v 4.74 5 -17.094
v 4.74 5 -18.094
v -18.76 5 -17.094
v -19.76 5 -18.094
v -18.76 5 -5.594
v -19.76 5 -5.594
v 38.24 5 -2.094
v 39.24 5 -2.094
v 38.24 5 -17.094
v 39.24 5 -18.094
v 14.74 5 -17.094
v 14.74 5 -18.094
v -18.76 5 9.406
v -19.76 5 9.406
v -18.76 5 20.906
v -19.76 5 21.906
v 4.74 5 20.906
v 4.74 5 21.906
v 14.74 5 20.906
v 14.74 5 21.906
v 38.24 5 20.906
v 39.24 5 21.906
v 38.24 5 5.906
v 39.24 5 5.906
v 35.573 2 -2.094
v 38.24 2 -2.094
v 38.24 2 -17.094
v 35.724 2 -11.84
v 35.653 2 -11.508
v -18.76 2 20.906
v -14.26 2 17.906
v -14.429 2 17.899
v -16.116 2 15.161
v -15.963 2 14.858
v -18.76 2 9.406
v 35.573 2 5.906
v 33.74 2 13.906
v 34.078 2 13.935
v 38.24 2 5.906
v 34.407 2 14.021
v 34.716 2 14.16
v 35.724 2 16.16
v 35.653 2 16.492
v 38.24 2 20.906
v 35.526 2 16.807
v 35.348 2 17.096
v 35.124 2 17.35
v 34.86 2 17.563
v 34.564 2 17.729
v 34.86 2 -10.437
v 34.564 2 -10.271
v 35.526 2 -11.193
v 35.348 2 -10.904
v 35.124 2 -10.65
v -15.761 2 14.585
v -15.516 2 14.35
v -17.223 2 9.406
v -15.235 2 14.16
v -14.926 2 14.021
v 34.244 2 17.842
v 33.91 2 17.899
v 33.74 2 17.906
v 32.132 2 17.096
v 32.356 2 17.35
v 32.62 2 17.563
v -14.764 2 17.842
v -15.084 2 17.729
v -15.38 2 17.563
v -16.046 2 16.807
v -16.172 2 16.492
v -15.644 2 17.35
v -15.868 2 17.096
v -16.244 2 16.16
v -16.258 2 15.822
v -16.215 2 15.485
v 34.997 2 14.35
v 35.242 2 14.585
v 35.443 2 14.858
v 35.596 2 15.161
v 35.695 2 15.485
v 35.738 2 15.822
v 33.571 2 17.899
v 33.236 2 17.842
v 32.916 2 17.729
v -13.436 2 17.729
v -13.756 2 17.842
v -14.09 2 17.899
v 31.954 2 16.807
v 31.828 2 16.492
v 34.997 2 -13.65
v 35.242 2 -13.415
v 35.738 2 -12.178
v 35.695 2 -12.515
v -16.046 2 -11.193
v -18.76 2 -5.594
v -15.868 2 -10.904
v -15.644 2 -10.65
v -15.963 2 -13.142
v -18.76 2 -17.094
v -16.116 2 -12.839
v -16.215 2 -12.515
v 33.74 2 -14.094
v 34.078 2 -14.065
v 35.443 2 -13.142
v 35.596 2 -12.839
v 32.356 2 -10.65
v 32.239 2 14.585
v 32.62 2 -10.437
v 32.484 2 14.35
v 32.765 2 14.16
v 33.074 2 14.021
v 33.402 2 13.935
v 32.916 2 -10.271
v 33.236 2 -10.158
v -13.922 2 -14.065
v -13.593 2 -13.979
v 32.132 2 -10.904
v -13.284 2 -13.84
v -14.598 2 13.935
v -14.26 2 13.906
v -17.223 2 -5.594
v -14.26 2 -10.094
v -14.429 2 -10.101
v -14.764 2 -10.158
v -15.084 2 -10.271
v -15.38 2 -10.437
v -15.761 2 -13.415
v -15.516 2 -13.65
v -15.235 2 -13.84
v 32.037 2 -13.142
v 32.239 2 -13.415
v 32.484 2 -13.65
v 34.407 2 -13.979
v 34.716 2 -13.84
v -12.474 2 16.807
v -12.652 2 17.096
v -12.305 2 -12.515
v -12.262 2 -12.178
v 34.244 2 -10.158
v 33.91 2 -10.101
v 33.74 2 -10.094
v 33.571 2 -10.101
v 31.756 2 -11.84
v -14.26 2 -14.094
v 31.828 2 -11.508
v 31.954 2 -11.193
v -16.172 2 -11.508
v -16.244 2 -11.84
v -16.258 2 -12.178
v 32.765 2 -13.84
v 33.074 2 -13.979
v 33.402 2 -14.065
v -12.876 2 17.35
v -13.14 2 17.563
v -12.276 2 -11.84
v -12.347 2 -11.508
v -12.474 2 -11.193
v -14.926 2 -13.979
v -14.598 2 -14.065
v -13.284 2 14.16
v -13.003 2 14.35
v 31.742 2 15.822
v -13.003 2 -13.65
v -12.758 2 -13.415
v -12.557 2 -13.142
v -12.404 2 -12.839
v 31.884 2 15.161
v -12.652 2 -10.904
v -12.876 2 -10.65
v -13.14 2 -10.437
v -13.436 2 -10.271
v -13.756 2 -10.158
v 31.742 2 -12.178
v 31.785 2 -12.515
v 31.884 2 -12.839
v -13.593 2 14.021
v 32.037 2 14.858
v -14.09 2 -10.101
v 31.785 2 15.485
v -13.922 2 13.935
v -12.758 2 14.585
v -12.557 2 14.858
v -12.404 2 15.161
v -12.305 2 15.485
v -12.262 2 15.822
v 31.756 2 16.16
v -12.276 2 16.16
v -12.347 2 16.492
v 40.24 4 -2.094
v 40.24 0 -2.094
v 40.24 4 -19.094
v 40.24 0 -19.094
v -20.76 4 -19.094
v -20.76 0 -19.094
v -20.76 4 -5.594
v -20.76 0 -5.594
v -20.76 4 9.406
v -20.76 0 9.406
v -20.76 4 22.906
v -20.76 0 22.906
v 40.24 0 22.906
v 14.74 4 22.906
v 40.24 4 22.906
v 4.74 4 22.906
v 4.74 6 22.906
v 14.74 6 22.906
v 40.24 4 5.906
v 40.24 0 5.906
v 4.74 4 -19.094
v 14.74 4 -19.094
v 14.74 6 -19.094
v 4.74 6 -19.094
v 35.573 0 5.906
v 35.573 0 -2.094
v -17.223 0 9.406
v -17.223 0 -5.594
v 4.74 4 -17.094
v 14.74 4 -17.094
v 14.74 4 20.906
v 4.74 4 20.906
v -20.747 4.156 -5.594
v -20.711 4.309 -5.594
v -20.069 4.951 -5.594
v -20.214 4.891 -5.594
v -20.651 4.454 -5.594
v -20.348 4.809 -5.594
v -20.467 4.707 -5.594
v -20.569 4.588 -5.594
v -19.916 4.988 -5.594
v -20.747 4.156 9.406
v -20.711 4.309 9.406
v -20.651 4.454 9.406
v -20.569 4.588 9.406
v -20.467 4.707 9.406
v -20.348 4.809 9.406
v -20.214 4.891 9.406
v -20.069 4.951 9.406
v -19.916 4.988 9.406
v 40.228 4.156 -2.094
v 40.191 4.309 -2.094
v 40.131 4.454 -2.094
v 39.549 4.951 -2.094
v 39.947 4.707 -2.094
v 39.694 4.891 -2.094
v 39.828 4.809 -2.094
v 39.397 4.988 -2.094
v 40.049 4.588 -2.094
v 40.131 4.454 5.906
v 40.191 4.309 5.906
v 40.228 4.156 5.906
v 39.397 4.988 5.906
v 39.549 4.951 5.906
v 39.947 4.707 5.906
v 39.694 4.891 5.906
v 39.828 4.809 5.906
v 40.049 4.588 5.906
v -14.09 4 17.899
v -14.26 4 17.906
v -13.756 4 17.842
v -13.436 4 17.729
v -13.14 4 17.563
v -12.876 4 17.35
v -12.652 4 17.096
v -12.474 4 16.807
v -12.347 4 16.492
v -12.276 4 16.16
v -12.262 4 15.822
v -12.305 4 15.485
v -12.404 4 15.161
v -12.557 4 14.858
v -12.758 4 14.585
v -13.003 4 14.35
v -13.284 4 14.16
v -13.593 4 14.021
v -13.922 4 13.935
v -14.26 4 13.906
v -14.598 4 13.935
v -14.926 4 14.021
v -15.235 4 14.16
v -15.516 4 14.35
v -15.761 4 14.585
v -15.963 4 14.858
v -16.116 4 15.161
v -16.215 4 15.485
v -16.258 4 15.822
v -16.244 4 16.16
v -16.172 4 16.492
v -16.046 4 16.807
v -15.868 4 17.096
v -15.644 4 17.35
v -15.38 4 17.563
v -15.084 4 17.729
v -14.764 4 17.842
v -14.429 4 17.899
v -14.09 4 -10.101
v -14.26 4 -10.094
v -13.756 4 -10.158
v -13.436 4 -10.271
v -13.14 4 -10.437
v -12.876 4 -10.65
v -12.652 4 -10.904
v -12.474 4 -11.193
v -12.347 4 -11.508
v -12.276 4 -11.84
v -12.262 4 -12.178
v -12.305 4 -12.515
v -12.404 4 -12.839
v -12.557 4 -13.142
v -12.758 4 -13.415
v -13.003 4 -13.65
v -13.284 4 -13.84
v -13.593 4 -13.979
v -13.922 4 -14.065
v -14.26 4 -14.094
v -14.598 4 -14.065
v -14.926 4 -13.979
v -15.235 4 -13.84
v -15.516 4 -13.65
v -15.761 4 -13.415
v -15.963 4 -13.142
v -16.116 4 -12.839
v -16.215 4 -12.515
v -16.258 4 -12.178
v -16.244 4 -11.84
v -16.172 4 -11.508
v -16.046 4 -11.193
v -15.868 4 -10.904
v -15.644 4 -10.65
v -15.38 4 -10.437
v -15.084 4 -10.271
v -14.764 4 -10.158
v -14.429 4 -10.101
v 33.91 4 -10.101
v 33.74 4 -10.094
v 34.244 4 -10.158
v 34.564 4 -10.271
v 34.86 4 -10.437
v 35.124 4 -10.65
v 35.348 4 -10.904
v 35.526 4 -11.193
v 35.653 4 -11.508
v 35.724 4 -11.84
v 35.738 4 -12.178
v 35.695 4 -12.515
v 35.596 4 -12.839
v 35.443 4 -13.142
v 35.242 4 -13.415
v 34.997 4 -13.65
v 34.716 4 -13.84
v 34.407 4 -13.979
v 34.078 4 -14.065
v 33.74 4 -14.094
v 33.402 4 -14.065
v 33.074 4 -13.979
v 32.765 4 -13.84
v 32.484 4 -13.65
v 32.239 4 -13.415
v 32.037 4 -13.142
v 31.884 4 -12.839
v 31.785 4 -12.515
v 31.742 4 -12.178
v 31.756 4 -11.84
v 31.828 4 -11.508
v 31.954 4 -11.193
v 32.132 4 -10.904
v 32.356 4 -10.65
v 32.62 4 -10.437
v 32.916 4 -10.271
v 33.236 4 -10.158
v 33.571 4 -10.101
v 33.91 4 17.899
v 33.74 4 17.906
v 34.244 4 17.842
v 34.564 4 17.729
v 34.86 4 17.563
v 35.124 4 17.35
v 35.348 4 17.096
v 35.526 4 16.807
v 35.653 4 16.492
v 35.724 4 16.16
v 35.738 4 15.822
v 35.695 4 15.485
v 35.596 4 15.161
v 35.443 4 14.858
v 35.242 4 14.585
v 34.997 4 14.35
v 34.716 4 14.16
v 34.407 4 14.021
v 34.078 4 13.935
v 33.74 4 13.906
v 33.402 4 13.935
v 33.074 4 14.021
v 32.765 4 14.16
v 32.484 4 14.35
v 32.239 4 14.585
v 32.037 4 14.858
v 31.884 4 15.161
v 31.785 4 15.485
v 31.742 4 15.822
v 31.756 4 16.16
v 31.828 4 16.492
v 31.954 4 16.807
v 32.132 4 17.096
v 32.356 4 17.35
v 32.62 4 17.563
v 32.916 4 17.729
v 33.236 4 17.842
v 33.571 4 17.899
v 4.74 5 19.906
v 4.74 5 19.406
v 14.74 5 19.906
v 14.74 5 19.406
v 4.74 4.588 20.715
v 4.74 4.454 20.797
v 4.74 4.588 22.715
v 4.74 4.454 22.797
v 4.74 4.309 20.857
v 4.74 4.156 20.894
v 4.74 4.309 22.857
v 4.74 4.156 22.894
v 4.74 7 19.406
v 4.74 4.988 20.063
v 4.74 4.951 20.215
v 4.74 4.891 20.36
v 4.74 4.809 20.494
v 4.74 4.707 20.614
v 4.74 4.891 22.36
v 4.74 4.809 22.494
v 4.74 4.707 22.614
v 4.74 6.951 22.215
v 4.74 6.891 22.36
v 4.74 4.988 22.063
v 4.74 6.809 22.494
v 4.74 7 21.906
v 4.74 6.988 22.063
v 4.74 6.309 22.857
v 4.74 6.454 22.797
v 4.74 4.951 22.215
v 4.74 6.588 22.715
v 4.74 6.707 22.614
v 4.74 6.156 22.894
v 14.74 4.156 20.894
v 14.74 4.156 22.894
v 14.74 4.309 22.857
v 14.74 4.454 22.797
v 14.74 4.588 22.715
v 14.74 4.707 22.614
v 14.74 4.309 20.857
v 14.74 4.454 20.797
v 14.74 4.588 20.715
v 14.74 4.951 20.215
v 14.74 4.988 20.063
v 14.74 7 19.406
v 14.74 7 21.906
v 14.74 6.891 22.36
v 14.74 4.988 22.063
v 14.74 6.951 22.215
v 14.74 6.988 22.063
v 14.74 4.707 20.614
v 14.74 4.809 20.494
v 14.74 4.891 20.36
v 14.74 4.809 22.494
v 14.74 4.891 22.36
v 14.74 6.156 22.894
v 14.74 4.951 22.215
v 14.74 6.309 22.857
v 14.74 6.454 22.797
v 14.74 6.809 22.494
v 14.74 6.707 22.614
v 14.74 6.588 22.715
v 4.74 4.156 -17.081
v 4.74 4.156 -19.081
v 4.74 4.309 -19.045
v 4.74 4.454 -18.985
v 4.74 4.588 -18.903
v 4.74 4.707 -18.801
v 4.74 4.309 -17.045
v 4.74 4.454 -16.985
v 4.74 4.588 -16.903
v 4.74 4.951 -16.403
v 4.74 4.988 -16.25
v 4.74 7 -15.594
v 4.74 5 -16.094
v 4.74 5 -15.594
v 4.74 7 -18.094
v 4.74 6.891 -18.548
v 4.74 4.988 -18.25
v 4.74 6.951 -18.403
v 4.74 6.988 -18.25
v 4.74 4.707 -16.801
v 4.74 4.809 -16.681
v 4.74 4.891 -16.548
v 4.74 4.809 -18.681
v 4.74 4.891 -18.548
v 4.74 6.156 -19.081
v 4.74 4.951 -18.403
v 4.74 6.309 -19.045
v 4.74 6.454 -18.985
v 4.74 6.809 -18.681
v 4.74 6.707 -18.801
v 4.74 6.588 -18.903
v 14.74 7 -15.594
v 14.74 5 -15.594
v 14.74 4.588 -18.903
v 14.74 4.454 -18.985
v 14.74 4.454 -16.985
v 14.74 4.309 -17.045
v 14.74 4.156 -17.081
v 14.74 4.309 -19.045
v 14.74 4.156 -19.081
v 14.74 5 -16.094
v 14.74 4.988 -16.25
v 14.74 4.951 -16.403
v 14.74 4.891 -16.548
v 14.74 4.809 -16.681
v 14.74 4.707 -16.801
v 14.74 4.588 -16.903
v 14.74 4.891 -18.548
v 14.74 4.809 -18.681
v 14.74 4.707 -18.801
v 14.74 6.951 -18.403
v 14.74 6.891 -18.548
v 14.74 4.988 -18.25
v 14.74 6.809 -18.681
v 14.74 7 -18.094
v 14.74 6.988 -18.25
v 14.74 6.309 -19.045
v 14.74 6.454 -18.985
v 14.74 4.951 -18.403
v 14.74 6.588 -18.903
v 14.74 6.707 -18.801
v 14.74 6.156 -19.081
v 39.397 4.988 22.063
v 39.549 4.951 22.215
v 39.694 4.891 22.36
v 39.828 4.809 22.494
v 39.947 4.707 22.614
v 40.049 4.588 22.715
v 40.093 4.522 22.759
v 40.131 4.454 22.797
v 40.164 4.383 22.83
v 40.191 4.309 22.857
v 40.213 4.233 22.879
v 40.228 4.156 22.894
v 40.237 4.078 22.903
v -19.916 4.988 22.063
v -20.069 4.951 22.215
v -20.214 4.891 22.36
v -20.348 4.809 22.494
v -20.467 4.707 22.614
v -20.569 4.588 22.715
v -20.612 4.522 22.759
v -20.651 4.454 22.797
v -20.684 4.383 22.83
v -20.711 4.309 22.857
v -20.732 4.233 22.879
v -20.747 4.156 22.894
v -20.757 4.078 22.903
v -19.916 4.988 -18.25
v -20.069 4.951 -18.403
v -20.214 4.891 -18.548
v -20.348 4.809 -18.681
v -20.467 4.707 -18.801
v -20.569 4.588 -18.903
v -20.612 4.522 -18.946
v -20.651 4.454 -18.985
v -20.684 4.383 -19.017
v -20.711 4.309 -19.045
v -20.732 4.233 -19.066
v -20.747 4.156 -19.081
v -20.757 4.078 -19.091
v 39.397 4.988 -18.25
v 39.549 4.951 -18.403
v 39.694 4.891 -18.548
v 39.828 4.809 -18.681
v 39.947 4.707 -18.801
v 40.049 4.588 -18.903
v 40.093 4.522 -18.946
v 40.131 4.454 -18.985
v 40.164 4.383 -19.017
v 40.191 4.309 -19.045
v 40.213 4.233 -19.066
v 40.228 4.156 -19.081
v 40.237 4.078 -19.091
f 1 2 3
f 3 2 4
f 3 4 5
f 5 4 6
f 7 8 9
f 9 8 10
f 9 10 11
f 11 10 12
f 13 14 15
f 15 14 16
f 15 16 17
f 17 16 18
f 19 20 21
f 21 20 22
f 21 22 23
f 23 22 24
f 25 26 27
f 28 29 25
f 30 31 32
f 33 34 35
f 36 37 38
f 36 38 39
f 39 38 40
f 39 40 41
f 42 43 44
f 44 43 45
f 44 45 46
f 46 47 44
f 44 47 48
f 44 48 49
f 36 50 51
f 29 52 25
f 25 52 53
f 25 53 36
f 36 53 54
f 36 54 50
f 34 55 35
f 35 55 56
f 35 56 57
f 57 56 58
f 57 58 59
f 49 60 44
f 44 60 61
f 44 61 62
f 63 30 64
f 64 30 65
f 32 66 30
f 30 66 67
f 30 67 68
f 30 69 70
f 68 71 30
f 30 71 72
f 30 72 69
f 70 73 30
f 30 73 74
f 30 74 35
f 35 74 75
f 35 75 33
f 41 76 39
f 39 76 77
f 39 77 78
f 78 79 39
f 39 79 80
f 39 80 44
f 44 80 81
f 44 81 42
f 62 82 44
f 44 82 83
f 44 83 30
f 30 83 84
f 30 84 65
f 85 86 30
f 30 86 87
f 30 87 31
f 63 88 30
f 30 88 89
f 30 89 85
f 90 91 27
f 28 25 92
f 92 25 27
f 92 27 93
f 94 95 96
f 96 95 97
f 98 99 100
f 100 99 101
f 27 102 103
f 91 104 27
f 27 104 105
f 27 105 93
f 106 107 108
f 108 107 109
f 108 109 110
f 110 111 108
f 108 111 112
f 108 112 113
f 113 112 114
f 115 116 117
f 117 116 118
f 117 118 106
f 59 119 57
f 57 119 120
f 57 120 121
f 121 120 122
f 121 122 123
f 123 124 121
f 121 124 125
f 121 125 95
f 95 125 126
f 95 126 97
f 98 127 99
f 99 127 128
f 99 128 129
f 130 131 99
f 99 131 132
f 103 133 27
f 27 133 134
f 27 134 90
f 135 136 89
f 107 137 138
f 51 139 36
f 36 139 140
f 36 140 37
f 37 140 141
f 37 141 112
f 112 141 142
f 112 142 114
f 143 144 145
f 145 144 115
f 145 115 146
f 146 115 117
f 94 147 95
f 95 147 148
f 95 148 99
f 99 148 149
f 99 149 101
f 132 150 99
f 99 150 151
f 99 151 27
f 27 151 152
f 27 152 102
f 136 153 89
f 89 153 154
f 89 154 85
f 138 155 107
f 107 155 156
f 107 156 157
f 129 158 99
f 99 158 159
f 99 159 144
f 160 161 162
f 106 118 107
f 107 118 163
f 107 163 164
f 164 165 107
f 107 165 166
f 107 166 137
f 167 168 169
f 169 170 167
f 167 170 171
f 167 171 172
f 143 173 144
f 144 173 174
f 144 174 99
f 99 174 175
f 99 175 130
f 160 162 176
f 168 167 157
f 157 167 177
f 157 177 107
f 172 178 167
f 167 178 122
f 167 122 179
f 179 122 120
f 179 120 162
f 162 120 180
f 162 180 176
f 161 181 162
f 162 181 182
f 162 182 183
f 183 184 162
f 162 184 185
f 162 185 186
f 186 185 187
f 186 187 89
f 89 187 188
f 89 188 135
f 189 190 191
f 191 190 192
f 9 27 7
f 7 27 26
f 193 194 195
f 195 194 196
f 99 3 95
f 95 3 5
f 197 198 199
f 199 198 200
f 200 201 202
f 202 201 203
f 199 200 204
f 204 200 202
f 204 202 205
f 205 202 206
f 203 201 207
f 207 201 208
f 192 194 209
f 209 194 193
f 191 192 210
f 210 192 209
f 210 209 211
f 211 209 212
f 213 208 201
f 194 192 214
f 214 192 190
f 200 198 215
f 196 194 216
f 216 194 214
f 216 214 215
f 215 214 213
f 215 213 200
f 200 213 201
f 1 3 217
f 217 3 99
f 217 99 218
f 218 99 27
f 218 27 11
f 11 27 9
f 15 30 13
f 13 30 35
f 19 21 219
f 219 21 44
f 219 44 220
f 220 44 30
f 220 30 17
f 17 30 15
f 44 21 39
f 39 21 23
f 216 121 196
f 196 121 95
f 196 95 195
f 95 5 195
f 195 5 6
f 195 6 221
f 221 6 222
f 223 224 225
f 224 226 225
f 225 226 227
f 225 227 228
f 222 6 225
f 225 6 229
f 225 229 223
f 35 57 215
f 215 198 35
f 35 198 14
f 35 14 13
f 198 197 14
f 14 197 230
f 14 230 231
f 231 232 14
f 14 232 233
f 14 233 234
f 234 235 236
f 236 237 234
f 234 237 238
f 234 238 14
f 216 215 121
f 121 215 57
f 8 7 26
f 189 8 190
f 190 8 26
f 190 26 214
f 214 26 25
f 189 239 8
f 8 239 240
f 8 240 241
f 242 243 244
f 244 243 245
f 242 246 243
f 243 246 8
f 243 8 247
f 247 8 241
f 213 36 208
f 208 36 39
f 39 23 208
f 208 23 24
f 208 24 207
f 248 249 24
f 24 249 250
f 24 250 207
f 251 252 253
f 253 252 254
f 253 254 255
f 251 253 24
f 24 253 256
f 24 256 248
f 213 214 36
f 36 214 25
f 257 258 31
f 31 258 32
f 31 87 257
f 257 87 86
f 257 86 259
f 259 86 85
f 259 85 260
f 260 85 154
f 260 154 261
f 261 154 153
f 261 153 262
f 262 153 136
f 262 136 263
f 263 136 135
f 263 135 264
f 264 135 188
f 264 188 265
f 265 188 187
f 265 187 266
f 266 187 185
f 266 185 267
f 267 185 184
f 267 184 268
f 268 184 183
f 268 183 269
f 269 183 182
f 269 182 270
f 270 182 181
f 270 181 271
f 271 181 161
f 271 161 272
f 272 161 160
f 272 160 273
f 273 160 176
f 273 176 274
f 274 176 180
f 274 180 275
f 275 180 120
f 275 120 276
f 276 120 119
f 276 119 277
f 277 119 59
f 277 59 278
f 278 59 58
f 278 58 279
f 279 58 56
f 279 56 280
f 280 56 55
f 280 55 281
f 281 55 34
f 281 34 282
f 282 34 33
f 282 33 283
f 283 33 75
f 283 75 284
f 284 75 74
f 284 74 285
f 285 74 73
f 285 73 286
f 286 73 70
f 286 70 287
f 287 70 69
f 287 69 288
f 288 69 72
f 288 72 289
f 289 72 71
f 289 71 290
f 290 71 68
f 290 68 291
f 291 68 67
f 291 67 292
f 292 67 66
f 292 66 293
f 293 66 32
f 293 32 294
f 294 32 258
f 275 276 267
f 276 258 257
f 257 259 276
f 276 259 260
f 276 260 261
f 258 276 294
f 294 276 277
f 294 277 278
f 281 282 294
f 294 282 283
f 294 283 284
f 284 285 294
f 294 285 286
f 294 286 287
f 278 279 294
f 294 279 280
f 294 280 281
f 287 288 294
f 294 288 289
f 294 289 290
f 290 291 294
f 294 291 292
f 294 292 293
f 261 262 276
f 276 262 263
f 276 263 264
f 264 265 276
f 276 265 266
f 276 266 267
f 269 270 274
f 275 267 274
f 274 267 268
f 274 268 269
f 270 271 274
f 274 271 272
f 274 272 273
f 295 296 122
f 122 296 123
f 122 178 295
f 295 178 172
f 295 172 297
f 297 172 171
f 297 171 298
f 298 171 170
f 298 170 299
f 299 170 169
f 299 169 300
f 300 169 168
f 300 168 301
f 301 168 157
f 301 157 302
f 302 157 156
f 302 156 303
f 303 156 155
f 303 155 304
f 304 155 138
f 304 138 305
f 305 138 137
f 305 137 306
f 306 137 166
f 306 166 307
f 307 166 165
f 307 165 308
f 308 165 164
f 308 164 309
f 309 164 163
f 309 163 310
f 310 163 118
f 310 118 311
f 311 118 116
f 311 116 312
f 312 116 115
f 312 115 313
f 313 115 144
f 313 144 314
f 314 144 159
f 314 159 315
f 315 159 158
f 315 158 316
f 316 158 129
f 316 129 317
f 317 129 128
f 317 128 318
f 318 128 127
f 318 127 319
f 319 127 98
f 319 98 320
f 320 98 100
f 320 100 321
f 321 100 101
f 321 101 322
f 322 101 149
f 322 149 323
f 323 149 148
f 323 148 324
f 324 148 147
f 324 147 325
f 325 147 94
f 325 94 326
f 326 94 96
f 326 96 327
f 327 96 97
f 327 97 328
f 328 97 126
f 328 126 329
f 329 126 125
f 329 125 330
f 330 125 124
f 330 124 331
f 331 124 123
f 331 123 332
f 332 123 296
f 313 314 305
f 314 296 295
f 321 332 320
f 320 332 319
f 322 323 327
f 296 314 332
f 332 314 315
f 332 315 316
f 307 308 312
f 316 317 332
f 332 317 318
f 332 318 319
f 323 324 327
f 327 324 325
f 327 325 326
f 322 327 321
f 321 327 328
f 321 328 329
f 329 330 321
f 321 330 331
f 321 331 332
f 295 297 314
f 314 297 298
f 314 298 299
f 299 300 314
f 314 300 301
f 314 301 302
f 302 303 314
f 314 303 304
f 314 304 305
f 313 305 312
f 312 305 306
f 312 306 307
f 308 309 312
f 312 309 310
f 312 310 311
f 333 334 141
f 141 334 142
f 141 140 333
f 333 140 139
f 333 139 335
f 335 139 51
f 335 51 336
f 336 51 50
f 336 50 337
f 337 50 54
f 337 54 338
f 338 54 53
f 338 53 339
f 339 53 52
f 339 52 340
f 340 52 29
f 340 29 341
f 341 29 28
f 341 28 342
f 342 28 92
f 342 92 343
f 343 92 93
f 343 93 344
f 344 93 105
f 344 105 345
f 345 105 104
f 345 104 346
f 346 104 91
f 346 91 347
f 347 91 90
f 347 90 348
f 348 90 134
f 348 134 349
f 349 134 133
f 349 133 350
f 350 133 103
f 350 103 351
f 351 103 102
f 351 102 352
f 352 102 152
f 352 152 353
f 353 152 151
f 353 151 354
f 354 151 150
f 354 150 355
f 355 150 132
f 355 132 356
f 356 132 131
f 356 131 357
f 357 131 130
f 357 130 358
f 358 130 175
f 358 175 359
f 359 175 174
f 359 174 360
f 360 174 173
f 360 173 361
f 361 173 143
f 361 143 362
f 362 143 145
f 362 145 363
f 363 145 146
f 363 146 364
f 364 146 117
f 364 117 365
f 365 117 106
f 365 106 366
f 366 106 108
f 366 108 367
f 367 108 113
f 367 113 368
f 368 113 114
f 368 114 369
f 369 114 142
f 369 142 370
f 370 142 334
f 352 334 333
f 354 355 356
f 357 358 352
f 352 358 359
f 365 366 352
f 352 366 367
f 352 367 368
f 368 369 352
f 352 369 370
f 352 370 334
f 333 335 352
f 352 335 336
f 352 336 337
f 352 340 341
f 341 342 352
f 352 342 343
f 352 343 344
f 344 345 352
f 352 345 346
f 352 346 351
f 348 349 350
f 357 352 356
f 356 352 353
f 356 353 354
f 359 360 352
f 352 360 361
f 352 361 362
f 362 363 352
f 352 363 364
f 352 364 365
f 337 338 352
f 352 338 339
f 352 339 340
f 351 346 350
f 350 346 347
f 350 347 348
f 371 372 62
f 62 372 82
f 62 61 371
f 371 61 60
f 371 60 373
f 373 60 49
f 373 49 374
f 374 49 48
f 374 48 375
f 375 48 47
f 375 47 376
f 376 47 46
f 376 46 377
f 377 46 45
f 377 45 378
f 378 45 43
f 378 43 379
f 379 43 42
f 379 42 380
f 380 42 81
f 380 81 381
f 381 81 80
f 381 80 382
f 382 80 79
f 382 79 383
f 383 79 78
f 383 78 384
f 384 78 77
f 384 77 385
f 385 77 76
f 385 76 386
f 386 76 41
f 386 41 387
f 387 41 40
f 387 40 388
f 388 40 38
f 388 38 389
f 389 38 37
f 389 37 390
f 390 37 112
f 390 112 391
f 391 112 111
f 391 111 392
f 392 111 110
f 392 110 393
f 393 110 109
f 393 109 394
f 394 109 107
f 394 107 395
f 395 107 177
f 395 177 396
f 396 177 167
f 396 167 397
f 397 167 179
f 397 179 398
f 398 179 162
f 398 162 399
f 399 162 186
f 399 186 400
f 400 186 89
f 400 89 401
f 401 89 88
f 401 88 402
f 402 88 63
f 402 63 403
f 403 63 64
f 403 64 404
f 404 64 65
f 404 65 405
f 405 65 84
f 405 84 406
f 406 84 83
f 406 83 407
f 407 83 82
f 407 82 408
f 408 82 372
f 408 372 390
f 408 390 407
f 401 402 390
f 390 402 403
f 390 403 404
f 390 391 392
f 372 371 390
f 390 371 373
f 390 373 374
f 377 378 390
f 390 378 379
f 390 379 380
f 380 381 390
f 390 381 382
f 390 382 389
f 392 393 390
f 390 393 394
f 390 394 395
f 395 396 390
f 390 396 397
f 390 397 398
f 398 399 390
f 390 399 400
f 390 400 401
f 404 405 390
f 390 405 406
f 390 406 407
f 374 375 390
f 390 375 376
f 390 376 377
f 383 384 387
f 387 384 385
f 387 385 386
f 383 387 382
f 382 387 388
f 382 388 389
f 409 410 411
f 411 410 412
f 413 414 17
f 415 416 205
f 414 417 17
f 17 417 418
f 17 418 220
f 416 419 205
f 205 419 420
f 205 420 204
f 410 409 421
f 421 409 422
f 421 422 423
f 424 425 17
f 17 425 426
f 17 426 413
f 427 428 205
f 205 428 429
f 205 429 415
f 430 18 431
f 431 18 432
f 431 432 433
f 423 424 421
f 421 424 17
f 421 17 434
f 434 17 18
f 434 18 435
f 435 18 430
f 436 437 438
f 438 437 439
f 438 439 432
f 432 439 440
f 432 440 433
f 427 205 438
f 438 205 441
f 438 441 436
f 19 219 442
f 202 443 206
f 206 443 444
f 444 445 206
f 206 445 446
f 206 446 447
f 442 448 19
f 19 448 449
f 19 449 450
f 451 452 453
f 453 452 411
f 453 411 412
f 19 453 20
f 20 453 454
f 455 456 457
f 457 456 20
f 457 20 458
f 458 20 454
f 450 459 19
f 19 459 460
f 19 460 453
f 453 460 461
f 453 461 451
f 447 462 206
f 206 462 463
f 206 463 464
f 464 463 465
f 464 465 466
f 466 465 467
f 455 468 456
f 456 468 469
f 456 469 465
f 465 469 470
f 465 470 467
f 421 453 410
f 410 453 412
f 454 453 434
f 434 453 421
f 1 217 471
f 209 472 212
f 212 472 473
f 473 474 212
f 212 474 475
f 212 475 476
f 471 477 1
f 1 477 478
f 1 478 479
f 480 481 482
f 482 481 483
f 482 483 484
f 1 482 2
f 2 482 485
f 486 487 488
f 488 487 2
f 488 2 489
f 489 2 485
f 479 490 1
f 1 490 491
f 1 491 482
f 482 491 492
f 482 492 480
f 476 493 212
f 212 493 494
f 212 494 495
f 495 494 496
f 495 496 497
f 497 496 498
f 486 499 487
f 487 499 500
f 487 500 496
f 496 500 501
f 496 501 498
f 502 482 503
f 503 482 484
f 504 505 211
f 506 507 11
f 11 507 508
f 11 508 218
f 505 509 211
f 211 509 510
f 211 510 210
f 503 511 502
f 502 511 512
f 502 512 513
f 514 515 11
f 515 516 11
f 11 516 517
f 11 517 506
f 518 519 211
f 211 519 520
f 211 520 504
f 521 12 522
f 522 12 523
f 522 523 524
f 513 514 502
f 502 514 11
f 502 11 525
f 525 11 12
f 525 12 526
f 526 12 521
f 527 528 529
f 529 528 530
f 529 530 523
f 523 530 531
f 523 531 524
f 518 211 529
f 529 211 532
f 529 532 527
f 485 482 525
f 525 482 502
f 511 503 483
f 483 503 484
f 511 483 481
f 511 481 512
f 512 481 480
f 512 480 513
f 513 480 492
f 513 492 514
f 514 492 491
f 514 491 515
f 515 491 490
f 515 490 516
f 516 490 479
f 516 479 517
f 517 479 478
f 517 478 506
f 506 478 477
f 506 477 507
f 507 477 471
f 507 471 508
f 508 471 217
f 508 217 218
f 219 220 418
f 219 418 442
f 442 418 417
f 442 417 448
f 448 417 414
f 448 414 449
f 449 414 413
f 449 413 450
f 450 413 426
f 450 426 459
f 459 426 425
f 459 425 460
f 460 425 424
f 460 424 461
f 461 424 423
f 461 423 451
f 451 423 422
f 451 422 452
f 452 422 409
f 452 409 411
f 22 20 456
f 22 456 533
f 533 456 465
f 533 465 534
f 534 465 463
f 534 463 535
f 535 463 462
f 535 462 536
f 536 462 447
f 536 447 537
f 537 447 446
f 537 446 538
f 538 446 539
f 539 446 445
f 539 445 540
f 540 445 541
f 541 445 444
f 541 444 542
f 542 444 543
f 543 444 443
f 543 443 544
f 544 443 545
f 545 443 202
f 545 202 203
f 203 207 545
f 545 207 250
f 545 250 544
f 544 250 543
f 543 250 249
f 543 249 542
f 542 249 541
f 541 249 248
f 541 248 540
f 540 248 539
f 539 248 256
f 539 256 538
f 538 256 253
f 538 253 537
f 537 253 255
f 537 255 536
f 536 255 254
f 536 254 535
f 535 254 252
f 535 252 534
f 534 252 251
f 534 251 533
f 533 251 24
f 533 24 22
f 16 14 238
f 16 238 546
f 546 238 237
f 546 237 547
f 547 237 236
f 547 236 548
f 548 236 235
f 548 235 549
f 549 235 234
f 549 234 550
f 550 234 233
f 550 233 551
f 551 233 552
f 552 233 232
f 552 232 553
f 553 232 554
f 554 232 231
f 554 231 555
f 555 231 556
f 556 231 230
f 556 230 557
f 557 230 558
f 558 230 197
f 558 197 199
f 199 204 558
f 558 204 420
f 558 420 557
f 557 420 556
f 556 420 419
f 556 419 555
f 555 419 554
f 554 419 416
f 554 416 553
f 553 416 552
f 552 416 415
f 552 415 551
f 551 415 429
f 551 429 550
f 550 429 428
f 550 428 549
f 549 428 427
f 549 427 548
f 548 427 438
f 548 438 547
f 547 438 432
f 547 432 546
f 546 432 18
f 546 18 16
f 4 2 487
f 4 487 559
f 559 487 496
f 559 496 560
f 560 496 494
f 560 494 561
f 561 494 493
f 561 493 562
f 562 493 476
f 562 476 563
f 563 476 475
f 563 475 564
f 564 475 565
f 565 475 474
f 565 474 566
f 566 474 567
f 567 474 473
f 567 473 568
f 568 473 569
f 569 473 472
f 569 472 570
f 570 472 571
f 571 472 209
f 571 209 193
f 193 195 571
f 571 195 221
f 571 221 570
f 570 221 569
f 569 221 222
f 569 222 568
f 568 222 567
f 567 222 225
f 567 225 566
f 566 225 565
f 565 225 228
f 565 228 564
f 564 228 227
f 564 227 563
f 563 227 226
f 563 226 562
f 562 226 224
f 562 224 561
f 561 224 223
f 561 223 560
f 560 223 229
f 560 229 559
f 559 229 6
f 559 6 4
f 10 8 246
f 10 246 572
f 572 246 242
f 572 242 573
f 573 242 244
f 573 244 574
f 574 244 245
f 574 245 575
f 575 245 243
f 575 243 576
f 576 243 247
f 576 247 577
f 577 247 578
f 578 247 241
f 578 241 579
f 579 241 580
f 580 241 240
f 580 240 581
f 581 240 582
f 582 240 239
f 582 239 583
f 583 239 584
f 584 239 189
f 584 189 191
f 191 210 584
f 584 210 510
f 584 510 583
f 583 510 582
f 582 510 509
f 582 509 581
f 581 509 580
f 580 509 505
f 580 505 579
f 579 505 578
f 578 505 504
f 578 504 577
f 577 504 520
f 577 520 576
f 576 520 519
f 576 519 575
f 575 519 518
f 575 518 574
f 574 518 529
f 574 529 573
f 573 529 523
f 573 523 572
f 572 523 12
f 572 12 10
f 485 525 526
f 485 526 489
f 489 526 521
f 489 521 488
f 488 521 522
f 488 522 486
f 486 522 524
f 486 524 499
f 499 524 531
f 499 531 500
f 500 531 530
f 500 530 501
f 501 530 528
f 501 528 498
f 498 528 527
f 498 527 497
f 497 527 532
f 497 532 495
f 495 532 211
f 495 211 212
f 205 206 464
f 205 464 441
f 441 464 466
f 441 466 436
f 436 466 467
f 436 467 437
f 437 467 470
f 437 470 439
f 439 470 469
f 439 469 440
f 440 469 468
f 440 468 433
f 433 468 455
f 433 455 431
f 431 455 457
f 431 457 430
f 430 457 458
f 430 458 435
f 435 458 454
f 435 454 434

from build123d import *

# Parameters (mm, degrees)
SKETCH1_W           = 61
SKETCH1_H           = 42
BOSS_EXTRUDE1_DEPTH = 2
SKETCH2_W           = 61
SKETCH2_H           = 42
SKETCH2_W_2         = 57
SKETCH2_H_2         = 38
BOSS_EXTRUDE2_DEPTH = 3
SKETCH3_W           = 5.775270692
SKETCH3_H           = 15
SKETCH3_W_2         = 6.454719949
SKETCH3_H_2         = 8
CUT_EXTRUDE1_DEPTH  = 5
SKETCH4_R           = 2
BOSS_EXTRUDE3_DEPTH = 2
SKETCH5_W           = 10
SKETCH5_H           = 3.5
BOSS_EXTRUDE4_DEPTH = 2
FILLET1_R           = 1
FILLET2_R           = 1


with BuildPart() as part:
    # Sketch1 → Boss-Extrude1 (new body)
    with BuildSketch(Plane(origin=(0, 0, 0), x_dir=(1, 0, 0), z_dir=(0, 1, 0))):
        with Locations((9.74023618, -1.906412613)):
            Rectangle(SKETCH1_W, SKETCH1_H)
    extrude(amount=BOSS_EXTRUDE1_DEPTH)

    # Sketch2 → Boss-Extrude2 (add)
    with BuildSketch(Plane(origin=(0, 2, 0), x_dir=(1, 0, 0), z_dir=(0, 1, 0))):
        with Locations((9.74023618, -1.906412613)):
            Rectangle(SKETCH2_W, SKETCH2_H)
        with Locations((9.74023618, -1.906412613)):
            Rectangle(SKETCH2_W_2, SKETCH2_H_2, mode=Mode.SUBTRACT)
    extrude(amount=BOSS_EXTRUDE2_DEPTH)

    # Sketch3 → Cut-Extrude1 (cut)
    with BuildSketch(Plane(origin=(0, 5, 0), x_dir=(1, 0, 0), z_dir=(0, 1, 0))):
        with Locations((-20.110444063, -1.906412613)):
            Rectangle(SKETCH3_W, SKETCH3_H)
        with Locations((38.800224202, -1.906412613)):
            Rectangle(SKETCH3_W_2, SKETCH3_H_2)
    extrude(amount=-CUT_EXTRUDE1_DEPTH, mode=Mode.SUBTRACT)

    # Sketch4 → Boss-Extrude3 (add)
    with BuildSketch(Plane(origin=(0, 2, 0), x_dir=(1, 0, 0), z_dir=(0, 1, 0))):
        with Locations((-14.25976382, -15.906412613)):
            Circle(SKETCH4_R)
        with Locations((-14.25976382, 12.093587387)):
            Circle(SKETCH4_R)
        with Locations((33.74023618, 12.093587387)):
            Circle(SKETCH4_R)
        with Locations((33.74023618, -15.906412613)):
            Circle(SKETCH4_R)
    extrude(amount=BOSS_EXTRUDE3_DEPTH)

    # Sketch5 → Boss-Extrude4 (add)
    with BuildSketch(Plane(origin=(0, 5, 0), x_dir=(1, 0, 0), z_dir=(0, 1, 0))):
        with Locations((9.74023618, -21.156412613)):
            Rectangle(SKETCH5_W, SKETCH5_H)
        with Locations((9.74023618, 17.343587387)):
            Rectangle(SKETCH5_W, SKETCH5_H)
    extrude(amount=BOSS_EXTRUDE4_DEPTH)

    # Fillet1
    fillet1_edges = [part.edges().sort_by_distance(p)[0] for p in [
        (9.74023618, 5, 20.906412613),
        (9.74023618, 5, -17.093587387),
    ]]
    fillet(fillet1_edges, radius=FILLET1_R)

    # Fillet2
    fillet2_edges = [part.edges().sort_by_distance(p)[0] for p in [
        (27.49023618, 5, 22.906412613),
        (9.74023618, 7, 22.906412613),
        (-8.00976382, 5, -19.093587387),
        (9.74023618, 7, -19.093587387),
        (-20.75976382, 5, -12.343587387),
        (-8.00976382, 5, 22.906412613),
        (40.24023618, 5, 14.406412613),
        (27.49023618, 5, -19.093587387),
        (-20.75976382, 5, 16.156412613),
        (40.24023618, 5, -10.593587387),
    ]]
    fillet(fillet2_edges, radius=FILLET2_R)


solid = part.part
